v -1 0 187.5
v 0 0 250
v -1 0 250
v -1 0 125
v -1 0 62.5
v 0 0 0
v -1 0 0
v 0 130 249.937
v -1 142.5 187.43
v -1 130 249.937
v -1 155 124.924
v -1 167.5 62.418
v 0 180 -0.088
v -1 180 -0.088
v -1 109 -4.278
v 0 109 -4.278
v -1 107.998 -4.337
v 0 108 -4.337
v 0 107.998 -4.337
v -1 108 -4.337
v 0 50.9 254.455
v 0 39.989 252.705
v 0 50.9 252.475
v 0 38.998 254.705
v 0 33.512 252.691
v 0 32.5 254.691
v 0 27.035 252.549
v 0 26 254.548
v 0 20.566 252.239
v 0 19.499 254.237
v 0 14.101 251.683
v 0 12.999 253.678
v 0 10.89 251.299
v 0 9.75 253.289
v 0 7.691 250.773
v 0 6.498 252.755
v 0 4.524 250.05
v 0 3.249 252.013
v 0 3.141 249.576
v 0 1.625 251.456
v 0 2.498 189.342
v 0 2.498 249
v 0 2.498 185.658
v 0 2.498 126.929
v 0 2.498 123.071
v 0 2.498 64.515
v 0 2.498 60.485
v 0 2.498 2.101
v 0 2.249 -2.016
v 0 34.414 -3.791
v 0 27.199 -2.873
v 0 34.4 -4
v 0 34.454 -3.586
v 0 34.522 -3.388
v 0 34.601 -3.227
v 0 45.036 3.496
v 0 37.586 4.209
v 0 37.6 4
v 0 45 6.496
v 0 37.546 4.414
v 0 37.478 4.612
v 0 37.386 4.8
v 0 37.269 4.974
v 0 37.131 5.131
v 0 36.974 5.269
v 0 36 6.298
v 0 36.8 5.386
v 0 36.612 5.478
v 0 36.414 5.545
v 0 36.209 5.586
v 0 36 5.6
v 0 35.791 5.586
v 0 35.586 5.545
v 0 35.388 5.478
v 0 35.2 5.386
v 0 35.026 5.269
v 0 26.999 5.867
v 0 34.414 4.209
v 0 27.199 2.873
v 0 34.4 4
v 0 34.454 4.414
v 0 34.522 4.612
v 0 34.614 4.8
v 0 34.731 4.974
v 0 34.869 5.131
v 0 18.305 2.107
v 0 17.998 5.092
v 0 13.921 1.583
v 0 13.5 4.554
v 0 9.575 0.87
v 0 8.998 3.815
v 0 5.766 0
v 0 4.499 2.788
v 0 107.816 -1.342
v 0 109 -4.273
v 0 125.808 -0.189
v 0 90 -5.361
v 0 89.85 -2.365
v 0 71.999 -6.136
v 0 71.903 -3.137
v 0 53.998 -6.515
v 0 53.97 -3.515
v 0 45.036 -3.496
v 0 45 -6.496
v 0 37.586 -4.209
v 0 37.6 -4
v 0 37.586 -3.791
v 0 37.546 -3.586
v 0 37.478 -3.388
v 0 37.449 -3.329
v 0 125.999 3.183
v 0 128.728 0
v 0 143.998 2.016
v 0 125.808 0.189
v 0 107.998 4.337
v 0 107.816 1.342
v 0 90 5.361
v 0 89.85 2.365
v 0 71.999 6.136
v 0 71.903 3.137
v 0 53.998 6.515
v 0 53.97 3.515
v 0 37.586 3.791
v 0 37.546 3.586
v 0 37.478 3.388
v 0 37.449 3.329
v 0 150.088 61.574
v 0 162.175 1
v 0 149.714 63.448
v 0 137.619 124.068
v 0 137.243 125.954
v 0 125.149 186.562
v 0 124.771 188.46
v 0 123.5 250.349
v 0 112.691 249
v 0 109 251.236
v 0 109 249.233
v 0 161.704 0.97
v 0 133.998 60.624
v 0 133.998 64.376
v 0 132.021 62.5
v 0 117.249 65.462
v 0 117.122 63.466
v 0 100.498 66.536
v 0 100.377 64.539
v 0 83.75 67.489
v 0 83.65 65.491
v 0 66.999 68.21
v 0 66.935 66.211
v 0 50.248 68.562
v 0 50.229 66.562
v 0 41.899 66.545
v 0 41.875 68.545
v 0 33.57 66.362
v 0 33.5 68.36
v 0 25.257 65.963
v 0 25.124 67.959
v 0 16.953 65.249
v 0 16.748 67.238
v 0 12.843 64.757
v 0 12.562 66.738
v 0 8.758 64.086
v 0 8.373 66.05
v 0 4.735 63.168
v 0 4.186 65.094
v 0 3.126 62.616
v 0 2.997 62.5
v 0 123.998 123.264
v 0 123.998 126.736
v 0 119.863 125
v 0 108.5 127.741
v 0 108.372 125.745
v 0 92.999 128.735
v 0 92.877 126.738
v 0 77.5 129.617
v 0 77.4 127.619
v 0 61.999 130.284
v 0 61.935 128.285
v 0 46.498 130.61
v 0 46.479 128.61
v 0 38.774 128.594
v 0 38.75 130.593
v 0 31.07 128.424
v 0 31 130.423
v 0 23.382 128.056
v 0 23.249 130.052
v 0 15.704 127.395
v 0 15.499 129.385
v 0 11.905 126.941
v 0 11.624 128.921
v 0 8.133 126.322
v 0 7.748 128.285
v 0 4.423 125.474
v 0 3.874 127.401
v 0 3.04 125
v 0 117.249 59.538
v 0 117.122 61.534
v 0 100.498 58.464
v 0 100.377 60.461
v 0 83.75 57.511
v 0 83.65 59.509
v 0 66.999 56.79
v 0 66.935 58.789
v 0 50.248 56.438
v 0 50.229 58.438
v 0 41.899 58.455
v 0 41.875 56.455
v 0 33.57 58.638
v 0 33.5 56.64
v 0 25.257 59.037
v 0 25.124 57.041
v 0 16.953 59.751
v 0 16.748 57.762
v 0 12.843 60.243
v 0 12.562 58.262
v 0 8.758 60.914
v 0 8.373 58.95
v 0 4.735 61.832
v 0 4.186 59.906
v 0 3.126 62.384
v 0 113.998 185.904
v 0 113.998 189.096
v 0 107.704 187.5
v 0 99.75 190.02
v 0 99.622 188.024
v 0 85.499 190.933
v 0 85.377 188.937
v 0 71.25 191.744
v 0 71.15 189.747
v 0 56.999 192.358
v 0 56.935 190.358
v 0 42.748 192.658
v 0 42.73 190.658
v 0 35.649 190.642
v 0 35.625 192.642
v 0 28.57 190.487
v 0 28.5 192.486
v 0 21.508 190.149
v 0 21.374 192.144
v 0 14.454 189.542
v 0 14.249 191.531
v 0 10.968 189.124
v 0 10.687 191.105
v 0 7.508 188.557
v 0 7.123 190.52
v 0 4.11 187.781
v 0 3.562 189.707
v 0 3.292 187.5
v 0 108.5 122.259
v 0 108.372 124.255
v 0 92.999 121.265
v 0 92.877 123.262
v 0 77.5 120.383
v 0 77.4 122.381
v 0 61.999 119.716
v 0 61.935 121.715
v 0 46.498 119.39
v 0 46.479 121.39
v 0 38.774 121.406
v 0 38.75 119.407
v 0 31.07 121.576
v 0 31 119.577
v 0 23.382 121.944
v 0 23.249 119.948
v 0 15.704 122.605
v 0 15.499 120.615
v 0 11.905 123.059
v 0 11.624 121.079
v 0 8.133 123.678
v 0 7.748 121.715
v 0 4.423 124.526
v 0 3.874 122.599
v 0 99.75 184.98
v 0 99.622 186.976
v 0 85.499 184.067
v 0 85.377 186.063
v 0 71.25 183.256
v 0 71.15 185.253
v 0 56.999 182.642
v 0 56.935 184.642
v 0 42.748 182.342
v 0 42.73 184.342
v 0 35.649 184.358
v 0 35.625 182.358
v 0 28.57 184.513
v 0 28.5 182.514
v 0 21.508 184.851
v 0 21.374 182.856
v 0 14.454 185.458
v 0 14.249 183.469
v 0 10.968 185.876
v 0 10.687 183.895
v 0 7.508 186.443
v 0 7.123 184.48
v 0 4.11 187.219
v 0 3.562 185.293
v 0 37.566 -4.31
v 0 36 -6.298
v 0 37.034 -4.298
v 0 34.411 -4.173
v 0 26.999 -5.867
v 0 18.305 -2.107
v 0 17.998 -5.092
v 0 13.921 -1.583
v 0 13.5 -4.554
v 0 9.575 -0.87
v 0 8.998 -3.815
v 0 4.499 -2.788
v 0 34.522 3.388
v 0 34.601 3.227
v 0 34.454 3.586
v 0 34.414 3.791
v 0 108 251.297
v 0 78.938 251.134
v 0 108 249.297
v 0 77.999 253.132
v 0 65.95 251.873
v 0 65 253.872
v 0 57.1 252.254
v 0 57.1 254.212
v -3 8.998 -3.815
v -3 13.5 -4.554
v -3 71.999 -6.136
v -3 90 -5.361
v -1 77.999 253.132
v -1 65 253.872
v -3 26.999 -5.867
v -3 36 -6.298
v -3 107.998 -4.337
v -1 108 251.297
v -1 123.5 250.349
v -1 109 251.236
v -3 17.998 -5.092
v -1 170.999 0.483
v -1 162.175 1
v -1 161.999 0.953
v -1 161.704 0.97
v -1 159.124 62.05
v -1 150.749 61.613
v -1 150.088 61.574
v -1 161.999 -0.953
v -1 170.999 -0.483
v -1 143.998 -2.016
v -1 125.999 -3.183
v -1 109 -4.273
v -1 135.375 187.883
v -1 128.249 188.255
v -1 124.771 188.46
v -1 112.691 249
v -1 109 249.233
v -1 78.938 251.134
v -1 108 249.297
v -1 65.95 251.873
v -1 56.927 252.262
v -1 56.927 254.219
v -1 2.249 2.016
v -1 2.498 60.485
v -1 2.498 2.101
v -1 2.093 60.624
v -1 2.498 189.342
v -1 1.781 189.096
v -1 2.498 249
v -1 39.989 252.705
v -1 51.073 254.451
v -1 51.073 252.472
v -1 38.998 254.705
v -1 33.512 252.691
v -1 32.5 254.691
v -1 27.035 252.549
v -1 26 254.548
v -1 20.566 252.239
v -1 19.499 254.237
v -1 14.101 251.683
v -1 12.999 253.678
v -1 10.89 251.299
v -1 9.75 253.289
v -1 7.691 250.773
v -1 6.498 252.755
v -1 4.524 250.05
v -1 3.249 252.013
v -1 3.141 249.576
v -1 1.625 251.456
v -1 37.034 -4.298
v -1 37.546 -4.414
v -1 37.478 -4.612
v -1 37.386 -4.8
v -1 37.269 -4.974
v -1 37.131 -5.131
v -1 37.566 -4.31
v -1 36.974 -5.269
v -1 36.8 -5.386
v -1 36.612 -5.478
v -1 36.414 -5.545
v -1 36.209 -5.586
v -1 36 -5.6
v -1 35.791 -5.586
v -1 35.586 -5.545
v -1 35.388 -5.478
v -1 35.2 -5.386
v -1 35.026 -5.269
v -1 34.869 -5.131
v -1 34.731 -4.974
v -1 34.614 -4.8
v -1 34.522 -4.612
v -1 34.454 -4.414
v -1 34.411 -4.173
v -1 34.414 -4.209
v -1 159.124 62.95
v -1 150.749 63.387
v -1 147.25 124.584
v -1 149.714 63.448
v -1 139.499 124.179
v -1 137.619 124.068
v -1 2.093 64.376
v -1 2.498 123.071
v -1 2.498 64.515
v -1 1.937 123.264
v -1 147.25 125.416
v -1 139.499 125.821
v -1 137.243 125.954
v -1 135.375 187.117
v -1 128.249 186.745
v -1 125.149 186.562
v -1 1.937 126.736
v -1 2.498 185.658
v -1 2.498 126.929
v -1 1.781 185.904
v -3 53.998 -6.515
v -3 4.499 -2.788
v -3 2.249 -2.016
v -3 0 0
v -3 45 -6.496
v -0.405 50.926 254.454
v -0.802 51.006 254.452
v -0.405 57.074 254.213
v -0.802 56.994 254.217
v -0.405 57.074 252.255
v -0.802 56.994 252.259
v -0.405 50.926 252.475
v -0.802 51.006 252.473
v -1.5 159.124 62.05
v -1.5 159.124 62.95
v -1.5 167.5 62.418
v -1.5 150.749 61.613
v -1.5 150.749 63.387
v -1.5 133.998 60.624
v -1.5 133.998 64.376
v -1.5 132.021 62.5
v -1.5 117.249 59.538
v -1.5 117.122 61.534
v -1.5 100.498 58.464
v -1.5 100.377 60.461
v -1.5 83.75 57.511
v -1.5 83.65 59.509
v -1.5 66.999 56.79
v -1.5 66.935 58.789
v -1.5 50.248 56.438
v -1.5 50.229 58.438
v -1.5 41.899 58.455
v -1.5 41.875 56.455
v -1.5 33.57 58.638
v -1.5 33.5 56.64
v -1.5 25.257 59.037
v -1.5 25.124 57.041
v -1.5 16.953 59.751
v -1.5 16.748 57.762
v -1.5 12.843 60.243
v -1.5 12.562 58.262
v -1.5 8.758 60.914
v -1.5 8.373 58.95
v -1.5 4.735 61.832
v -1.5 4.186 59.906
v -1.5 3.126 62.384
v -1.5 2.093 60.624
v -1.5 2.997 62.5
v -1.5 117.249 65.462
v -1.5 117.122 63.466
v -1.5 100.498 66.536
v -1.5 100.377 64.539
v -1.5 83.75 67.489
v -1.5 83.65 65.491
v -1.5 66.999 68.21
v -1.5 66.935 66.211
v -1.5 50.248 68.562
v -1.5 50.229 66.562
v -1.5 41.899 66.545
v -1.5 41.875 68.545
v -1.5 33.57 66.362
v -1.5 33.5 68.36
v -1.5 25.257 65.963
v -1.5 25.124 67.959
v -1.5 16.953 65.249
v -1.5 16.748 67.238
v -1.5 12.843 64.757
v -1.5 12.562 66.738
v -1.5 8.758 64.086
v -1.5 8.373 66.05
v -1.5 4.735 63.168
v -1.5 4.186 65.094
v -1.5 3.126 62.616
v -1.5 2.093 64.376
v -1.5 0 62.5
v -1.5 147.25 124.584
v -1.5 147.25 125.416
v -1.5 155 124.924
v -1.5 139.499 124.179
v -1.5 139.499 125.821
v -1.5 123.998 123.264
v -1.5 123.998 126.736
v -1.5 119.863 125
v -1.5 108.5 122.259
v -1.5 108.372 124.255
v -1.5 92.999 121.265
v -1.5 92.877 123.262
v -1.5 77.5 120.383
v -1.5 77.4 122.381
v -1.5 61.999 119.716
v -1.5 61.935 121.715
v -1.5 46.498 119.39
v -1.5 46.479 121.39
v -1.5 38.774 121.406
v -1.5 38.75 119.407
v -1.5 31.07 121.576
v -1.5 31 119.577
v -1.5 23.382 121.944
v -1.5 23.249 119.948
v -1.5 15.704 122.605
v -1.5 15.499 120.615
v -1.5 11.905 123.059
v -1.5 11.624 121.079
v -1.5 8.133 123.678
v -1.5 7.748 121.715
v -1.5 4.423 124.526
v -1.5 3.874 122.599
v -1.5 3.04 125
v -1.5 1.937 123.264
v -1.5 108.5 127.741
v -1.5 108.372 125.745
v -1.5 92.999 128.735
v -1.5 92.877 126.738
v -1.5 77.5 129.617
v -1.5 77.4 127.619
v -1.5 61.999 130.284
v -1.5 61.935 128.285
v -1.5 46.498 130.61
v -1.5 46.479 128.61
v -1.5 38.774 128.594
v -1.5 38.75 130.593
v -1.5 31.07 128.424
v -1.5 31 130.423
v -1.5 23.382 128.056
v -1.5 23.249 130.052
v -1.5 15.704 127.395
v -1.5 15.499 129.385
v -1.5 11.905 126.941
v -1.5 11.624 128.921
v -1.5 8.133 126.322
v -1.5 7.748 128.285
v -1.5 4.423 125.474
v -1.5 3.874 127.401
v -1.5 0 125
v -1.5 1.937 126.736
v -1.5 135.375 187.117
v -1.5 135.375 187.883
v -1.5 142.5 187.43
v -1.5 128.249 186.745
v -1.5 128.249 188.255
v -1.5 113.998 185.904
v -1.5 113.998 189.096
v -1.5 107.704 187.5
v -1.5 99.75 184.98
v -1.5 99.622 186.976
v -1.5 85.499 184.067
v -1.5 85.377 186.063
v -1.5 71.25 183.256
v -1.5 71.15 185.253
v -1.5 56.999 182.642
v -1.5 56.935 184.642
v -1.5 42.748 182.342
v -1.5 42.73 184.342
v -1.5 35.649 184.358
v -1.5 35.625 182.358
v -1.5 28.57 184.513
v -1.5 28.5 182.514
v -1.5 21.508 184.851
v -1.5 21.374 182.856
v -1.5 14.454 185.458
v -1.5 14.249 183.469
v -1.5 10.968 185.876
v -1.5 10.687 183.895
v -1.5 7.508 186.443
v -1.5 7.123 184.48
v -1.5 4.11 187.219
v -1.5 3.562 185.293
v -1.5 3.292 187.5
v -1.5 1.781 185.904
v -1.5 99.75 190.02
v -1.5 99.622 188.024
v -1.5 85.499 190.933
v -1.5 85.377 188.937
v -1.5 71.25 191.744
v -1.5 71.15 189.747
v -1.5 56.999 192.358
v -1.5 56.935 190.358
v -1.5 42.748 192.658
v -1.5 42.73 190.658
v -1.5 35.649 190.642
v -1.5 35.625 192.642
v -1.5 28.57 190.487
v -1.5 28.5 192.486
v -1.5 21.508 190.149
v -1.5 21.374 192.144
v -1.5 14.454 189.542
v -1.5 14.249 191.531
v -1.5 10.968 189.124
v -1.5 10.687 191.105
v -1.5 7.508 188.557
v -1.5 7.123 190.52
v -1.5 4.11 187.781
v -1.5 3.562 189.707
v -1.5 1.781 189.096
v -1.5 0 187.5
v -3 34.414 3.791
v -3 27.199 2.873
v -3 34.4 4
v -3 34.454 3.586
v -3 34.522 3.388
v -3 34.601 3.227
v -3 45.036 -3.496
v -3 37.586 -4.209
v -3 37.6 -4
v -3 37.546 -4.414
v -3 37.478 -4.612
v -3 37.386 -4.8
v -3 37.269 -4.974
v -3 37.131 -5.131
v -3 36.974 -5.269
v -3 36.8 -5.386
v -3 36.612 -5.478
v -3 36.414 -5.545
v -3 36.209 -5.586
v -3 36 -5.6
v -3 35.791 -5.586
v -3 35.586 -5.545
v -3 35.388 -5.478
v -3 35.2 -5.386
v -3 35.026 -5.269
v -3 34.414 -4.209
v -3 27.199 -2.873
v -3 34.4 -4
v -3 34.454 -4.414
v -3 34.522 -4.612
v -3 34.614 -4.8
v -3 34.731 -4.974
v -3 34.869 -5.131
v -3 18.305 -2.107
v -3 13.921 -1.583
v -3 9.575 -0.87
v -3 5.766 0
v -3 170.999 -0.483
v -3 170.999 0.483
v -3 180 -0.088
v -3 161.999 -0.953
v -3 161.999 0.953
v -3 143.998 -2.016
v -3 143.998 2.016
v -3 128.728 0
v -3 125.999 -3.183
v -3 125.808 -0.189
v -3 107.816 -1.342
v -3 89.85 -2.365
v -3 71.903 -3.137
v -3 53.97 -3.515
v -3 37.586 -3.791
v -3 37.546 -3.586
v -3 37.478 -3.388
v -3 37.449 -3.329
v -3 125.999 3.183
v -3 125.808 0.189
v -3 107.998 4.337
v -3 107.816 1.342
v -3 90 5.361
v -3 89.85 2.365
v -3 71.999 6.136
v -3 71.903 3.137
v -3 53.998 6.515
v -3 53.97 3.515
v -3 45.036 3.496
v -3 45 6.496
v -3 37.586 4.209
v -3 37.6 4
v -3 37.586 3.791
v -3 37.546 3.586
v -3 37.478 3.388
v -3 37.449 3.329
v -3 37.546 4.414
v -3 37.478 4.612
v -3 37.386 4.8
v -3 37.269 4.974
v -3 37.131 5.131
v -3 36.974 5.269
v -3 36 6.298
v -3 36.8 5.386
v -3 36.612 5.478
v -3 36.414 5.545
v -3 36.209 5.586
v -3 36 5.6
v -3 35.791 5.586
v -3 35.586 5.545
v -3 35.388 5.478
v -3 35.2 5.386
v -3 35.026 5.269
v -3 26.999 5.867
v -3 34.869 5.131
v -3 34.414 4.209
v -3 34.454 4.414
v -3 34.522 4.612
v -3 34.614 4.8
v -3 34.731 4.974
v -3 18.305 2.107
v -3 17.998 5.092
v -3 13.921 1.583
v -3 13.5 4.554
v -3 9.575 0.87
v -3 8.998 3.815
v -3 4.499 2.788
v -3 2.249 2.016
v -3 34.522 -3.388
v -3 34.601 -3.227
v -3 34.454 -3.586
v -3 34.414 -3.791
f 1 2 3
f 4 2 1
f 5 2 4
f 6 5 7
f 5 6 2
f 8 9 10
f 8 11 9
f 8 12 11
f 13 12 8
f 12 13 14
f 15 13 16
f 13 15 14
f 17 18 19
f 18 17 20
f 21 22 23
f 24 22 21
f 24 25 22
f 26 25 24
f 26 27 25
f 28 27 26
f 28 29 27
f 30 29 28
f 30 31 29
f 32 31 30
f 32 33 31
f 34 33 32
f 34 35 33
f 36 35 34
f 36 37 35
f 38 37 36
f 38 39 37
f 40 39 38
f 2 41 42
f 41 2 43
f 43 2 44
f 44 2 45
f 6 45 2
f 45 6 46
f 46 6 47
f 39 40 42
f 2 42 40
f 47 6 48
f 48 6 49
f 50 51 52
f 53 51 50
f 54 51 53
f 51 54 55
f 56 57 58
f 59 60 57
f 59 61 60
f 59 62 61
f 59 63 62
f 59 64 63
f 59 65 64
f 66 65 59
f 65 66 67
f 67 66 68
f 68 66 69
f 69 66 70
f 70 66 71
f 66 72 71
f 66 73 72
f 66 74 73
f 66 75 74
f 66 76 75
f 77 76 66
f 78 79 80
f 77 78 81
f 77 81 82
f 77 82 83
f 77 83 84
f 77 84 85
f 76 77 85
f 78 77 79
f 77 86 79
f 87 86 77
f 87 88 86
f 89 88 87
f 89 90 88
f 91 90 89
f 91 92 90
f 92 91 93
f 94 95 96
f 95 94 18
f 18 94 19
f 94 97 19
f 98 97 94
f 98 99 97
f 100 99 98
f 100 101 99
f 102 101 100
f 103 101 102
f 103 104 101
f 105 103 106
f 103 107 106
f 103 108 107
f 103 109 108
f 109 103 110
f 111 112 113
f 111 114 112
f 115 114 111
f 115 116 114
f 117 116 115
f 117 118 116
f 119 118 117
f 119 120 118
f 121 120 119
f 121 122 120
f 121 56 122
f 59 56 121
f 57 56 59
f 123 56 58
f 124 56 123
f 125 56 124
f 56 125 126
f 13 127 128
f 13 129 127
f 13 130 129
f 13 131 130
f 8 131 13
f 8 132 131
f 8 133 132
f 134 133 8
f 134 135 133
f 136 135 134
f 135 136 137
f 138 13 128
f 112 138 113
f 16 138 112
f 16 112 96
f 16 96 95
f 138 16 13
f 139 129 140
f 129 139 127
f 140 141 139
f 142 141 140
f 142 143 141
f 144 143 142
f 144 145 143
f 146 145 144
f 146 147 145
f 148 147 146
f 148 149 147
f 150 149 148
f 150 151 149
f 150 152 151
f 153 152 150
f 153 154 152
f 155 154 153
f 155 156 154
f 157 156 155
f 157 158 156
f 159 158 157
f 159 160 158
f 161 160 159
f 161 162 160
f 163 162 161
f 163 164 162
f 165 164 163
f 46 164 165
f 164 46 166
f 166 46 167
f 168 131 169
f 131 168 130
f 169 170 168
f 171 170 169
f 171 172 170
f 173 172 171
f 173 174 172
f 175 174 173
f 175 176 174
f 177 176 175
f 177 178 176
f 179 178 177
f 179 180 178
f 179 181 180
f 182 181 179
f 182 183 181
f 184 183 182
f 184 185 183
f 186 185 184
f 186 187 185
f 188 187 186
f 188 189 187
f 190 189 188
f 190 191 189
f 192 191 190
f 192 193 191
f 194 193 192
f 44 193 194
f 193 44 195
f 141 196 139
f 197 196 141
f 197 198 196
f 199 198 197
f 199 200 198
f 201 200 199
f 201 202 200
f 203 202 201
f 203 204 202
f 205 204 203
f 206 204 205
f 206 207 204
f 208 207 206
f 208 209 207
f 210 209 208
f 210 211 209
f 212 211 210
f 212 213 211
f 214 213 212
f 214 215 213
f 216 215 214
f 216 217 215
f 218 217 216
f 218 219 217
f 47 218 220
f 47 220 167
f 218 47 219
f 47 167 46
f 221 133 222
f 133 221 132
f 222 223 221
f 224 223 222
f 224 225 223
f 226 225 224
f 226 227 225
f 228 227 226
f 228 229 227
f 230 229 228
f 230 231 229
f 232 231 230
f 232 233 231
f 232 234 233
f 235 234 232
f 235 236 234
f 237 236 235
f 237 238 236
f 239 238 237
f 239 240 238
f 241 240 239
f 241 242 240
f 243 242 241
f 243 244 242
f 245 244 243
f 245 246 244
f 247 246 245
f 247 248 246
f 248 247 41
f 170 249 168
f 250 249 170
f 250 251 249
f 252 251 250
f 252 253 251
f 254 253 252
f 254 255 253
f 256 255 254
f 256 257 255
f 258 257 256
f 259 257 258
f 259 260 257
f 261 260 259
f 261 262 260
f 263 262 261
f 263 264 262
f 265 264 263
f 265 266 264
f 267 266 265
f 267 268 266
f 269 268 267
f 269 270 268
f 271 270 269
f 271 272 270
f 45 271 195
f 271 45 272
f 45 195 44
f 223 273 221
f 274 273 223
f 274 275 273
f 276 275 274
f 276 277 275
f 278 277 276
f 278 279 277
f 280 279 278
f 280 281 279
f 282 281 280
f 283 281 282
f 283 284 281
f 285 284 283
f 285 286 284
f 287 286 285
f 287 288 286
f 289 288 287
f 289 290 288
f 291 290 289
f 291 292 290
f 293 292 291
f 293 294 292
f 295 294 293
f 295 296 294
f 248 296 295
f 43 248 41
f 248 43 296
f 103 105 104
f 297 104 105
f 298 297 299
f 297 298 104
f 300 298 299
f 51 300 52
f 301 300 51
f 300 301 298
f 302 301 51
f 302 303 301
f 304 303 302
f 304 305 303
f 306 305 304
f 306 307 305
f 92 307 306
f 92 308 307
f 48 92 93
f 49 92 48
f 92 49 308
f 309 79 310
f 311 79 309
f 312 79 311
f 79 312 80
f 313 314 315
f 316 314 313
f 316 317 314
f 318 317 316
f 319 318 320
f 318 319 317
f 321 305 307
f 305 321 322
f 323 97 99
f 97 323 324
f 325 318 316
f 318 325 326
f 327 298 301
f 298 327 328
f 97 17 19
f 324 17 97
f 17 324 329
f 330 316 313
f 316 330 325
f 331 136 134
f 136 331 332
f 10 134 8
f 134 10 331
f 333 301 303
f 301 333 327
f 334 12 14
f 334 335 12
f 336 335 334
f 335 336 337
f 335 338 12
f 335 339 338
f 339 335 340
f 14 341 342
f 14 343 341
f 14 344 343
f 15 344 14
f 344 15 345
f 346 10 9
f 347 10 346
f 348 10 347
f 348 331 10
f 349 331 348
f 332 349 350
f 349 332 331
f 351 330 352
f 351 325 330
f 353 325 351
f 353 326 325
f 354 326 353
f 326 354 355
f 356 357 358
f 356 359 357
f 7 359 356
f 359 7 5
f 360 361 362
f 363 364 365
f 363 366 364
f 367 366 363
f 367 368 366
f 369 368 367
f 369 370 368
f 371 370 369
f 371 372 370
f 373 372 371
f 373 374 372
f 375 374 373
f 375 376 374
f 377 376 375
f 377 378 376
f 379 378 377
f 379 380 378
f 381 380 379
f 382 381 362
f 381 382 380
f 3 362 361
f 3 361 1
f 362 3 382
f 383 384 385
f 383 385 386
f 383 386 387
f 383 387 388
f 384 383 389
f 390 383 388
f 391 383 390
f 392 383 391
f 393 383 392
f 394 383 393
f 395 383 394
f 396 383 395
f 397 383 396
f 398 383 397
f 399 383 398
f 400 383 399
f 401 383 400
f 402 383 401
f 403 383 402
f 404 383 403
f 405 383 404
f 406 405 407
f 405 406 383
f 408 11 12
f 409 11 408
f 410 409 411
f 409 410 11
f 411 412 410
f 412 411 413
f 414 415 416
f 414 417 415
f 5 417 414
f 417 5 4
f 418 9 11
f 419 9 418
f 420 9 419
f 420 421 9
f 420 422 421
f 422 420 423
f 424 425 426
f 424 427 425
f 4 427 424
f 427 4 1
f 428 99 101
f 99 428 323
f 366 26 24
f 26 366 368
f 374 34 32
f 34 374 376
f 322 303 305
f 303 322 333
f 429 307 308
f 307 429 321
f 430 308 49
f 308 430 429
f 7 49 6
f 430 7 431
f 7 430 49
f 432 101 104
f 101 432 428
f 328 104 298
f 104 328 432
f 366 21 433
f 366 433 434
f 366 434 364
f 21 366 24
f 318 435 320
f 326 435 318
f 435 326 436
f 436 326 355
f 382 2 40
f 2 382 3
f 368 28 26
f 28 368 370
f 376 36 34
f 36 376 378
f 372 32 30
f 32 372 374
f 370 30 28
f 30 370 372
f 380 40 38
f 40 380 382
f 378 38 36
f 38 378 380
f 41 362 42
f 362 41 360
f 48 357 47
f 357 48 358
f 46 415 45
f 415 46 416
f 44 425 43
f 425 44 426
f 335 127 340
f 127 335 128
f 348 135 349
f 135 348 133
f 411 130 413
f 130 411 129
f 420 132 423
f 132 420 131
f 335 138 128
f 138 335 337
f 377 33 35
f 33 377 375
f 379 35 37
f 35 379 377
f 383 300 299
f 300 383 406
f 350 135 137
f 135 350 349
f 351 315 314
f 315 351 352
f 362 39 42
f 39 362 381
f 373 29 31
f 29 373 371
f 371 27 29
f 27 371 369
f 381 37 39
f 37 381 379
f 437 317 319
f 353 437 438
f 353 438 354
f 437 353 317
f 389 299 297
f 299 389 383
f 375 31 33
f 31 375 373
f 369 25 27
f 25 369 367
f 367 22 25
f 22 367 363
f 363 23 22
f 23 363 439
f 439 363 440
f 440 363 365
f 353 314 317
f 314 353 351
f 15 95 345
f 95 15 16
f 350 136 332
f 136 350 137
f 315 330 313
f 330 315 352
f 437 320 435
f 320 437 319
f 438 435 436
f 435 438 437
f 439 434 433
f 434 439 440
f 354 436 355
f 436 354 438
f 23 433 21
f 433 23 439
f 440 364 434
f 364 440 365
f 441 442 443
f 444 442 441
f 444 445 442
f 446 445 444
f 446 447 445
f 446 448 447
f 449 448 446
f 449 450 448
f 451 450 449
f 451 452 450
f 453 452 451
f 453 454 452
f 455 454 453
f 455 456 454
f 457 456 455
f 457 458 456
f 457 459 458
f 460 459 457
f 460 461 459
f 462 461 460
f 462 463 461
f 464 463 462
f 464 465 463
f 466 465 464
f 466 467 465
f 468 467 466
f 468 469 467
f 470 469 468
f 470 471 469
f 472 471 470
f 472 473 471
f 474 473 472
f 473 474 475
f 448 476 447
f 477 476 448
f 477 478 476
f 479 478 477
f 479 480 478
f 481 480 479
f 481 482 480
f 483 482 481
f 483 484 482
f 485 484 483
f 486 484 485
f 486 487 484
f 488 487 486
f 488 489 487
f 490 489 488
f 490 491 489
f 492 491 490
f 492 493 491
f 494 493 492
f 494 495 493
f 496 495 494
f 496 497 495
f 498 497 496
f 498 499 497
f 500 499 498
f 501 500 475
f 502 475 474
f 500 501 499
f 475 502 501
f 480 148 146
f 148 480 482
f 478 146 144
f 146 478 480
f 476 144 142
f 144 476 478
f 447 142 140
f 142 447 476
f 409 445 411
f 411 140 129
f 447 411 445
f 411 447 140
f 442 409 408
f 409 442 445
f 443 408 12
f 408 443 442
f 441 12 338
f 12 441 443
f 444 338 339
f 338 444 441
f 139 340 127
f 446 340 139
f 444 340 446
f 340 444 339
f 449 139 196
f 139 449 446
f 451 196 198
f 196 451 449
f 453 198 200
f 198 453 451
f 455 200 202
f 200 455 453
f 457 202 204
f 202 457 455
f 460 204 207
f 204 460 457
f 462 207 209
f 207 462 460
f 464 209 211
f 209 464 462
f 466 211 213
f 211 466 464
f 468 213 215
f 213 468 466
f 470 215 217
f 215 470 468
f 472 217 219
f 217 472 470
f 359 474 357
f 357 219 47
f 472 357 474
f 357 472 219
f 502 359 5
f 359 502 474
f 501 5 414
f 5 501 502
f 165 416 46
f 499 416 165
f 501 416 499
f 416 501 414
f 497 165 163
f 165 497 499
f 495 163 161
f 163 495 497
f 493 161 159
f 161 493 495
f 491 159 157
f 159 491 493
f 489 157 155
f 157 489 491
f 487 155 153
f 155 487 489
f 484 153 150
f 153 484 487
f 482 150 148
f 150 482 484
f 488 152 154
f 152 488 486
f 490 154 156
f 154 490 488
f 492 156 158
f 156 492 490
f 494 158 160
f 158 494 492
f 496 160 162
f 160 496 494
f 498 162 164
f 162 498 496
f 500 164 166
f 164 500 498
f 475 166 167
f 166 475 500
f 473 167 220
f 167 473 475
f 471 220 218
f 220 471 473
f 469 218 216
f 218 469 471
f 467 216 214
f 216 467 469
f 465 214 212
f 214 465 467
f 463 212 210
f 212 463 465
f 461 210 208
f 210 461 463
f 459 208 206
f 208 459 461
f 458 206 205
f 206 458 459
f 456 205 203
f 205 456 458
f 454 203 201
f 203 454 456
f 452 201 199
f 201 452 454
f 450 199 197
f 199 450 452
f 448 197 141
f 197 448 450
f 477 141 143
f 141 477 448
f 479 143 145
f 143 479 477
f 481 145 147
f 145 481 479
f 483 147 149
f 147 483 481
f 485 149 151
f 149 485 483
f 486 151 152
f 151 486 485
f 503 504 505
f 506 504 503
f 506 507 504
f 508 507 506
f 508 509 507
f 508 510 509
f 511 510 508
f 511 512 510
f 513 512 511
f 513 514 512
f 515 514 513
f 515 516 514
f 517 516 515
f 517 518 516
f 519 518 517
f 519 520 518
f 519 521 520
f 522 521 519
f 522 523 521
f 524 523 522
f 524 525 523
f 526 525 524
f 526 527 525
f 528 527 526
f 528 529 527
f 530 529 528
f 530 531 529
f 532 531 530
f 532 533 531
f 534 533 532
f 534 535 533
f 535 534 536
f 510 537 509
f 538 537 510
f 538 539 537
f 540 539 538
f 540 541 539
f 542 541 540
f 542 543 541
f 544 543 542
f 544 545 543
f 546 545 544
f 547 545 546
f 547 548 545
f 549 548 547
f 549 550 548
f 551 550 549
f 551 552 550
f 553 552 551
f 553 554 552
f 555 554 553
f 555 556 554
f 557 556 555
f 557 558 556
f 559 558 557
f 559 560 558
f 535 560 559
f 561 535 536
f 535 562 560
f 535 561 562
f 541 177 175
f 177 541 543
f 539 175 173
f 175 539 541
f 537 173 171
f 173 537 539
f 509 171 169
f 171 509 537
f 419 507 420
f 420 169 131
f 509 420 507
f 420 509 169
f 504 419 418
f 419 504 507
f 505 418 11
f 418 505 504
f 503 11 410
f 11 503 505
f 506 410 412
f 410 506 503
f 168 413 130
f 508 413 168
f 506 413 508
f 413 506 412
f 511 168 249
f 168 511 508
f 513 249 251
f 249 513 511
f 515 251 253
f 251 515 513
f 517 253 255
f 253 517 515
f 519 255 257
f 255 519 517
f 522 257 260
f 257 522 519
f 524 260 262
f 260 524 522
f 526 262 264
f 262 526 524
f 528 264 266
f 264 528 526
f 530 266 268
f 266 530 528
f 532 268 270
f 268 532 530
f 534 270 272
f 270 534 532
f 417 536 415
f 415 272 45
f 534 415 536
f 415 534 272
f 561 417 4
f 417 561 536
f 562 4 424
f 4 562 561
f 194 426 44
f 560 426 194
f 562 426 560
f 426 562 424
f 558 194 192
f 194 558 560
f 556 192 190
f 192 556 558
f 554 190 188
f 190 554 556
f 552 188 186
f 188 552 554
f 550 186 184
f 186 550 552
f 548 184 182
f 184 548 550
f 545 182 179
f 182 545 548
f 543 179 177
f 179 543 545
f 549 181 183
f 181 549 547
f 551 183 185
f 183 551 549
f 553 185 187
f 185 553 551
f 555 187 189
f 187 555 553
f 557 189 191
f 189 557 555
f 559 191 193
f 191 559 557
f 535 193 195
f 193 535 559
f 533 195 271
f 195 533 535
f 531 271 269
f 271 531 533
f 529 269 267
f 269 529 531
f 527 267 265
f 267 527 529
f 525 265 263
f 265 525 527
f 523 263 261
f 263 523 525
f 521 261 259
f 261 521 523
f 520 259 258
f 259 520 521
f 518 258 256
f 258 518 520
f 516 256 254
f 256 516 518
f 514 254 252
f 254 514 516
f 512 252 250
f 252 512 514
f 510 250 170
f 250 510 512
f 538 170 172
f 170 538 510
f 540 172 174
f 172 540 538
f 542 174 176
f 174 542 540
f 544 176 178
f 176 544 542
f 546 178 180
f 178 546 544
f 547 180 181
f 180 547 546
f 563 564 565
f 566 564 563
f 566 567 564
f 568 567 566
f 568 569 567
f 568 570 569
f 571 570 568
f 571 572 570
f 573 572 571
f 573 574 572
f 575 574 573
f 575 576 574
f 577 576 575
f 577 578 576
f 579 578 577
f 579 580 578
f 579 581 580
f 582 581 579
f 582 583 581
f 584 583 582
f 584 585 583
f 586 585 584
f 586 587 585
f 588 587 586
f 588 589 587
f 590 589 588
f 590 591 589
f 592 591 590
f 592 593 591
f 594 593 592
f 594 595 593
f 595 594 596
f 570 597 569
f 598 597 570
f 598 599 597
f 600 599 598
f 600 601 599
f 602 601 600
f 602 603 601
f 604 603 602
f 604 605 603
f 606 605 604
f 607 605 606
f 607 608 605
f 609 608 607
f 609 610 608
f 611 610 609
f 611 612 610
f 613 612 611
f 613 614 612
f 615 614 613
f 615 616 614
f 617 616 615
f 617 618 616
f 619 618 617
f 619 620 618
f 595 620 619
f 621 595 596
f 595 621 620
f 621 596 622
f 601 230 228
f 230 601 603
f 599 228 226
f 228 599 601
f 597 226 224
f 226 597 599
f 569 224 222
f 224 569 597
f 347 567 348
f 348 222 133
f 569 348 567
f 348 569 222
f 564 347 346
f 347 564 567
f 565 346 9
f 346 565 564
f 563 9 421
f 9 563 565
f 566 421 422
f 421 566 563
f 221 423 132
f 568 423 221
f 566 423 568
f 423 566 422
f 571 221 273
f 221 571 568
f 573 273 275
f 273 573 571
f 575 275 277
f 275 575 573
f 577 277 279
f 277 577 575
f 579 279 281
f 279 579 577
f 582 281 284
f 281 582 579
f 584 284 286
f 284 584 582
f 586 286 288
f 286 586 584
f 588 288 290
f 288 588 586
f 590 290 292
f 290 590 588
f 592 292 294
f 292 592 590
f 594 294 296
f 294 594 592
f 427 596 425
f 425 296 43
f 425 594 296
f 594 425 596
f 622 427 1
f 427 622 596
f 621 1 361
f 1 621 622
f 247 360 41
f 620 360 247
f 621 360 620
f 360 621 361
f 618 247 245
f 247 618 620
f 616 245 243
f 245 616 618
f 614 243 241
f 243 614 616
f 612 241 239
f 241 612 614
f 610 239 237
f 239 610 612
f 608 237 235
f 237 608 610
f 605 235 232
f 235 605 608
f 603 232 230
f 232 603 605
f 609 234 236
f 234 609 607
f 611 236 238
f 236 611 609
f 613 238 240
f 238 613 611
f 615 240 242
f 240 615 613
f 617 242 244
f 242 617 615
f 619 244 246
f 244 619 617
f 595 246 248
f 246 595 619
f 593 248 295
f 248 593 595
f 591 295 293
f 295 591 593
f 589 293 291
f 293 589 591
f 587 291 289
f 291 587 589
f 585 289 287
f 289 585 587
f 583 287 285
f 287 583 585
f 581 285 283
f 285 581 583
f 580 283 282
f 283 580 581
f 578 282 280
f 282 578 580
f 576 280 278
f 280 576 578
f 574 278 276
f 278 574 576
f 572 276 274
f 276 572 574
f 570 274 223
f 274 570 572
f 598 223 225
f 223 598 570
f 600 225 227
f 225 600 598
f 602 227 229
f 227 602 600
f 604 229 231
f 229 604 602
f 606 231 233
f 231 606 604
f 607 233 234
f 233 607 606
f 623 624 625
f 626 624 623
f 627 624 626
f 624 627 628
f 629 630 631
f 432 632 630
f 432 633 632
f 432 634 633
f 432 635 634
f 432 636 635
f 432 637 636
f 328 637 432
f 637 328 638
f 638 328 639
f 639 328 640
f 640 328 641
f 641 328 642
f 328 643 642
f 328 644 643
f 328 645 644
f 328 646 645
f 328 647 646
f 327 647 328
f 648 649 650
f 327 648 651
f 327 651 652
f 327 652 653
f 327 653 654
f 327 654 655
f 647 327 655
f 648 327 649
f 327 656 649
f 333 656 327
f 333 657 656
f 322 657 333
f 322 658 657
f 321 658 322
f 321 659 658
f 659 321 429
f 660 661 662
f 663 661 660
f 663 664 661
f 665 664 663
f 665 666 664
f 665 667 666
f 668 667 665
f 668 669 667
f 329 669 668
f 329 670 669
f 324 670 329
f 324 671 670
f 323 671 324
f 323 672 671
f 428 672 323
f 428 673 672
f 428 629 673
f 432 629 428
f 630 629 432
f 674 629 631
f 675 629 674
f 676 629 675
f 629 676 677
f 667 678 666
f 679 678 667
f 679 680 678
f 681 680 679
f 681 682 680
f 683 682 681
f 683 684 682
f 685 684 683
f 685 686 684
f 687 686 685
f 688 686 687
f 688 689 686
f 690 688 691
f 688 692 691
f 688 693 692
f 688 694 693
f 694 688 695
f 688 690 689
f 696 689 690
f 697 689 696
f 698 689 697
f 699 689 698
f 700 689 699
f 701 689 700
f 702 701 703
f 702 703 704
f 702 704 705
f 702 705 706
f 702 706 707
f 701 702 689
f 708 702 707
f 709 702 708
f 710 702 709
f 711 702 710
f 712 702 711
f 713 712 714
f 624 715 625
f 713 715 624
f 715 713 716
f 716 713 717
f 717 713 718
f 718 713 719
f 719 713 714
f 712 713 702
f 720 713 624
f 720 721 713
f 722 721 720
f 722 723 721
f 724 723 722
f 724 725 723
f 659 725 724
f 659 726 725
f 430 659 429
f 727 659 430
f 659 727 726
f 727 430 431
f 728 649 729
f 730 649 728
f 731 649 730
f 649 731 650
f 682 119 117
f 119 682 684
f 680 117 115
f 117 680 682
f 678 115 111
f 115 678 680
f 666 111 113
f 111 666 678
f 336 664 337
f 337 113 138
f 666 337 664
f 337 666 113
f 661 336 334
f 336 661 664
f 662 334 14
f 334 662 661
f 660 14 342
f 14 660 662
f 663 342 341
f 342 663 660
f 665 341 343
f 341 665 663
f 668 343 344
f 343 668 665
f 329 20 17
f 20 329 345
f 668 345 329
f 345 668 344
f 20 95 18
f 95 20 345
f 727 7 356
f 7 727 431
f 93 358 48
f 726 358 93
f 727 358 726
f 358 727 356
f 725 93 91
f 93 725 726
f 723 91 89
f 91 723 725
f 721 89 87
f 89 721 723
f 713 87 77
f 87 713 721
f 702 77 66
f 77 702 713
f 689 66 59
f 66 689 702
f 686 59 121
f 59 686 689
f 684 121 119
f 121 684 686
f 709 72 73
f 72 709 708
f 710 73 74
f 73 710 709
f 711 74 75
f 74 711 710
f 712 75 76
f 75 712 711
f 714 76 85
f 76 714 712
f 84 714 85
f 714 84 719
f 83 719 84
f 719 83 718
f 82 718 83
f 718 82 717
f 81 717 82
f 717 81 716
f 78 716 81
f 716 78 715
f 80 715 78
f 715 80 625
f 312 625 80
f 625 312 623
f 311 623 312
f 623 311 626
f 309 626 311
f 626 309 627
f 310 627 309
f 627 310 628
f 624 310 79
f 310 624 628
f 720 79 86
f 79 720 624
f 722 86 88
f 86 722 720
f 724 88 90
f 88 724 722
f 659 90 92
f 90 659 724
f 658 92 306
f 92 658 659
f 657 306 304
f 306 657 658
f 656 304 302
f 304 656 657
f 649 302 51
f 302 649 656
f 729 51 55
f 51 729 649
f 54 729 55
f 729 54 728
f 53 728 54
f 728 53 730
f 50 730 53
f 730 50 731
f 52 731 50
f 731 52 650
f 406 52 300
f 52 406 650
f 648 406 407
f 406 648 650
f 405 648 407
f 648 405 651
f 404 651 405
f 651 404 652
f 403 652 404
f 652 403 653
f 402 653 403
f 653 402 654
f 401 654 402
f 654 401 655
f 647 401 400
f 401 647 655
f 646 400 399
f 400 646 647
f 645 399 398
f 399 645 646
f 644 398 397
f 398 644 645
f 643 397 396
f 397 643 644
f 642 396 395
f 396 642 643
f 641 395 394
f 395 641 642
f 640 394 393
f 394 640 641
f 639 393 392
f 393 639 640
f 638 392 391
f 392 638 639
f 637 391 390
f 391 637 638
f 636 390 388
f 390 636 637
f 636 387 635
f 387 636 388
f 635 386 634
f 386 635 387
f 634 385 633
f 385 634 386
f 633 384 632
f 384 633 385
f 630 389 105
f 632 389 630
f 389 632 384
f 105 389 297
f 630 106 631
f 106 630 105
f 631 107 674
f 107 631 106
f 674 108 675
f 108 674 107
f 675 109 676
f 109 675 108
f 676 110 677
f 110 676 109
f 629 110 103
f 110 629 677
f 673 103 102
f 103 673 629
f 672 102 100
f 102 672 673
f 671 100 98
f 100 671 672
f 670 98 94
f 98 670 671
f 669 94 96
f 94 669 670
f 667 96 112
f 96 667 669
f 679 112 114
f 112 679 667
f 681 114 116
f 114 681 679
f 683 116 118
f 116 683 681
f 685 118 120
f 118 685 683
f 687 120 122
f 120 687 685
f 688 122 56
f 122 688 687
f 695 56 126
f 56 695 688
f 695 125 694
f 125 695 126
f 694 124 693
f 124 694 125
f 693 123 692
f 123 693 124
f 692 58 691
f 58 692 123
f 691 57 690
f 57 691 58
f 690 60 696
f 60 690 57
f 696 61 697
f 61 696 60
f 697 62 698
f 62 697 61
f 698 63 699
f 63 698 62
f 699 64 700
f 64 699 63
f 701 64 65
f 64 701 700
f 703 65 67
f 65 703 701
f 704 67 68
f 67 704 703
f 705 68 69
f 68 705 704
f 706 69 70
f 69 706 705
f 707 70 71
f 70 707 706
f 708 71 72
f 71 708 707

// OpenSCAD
// file: ../../lib/profiles.scad
// Knihovna leteckych profilu pro RC letadlo
// Vsechny rozmery v milimetrech

// Clark-Y profil (zjednoduseny) - pro kridlo
// Vraci 2D polygon profilu normalizovany na hloubku 1
function clark_y_upper() = [
    [1.000, 0.0013],
    [0.950, 0.0114],
    [0.900, 0.0208],
    [0.800, 0.0375],
    [0.700, 0.0518],
    [0.600, 0.0636],
    [0.500, 0.0724],
    [0.400, 0.0780],
    [0.300, 0.0788],
    [0.250, 0.0767],
    [0.200, 0.0726],
    [0.150, 0.0661],
    [0.100, 0.0563],
    [0.075, 0.0496],
    [0.050, 0.0413],
    [0.025, 0.0299],
    [0.0125,0.0215],
    [0.000, 0.0000]
];

function clark_y_lower() = [
    [0.000, 0.0000],
    [0.0125,-0.0095],
    [0.025, -0.0116],
    [0.050, -0.0126],
    [0.075, -0.0119],
    [0.100, -0.0104],
    [0.150, -0.0069],
    [0.200, -0.0040],
    [0.250, -0.0018],
    [0.300, -0.0005],
    [0.400, 0.0003],
    [0.500, 0.0000],
    [0.600, -0.0003],
    [0.700, -0.0003],
    [0.800, 0.0000],
    [0.900, 0.0005],
    [0.950, 0.0007],
    [1.000, 0.0013]
];

function clark_y_points() = concat(clark_y_upper(), clark_y_lower());

module clark_y_profile(chord) {
    pts = concat(clark_y_upper(), clark_y_lower());
    scale([chord, chord, 1])
        polygon([for (p = pts) [p[0], p[1]]]);
}

// NACA 0009 symetricky profil - pro ocasni plochy
function naca0009_half() = [
    [0.000, 0.0000],
    [0.0125, 0.0112],
    [0.025, 0.0155],
    [0.050, 0.0212],
    [0.075, 0.0253],
    [0.100, 0.0283],
    [0.150, 0.0326],
    [0.200, 0.0350],
    [0.250, 0.0361],
    [0.300, 0.0362],
    [0.400, 0.0341],
    [0.500, 0.0298],
    [0.600, 0.0241],
    [0.700, 0.0177],
    [0.800, 0.0112],
    [0.900, 0.0053],
    [0.950, 0.0027],
    [1.000, 0.0005]
];

module naca0009_profile(chord) {
    upper = naca0009_half();
    lower = [for (i = [len(upper)-1:-1:0]) [upper[i][0], -upper[i][1]]];
    pts = concat(upper, [for (i = [1:len(lower)-1]) lower[i]]);
    scale([chord, chord, 1])
        polygon([for (p = pts) [p[0], p[1]]]);
}

// Ovalny prurezu trupu
module oval_profile(width, height) {
    scale([width/2, height/2])
        circle(r=1, $fn=64);
}

// Zaobleny obdelnik
module rounded_rect(w, h, r) {
    offset(r=r)
        square([w - 2*r, h - 2*r], center=true);
}
// main file
// Svislá ocasní plocha (SOP)
// NACA 0009 profil, výška 250mm, hloubka 180mm
// Směrové kormidlo = zadních 40%
// Material: PLA-LW, 10% výplň, 2 perimetry

use <../../lib/profiles.scad>;

$fn = 48;

vyska = 250;
hloubka_koren = 180;
hloubka_konec = 130;
tl = 1.0;
nosnik_prumer = 6.2;
pozice_nosnik = 0.30;
kormidlo_pomer = 0.40;

module sop() {
    difference() {
        // Plný tvar - svisle orientovány
        hull() {
            rotate([0, -90, 0])
                rotate([0, 0, 90])
                    linear_extrude(1)
                        naca0009_profile(hloubka_koren);
            translate([0, 0, vyska])
                rotate([0, -90, 0])
                    rotate([0, 0, 90])
                        linear_extrude(1)
                            naca0009_profile(hloubka_konec);
        }

        // Dutina
        hull() {
            translate([0, tl, tl])
                rotate([0, -90, 0])
                    rotate([0, 0, 90])
                        linear_extrude(1)
                            offset(delta=-tl)
                                naca0009_profile(hloubka_koren);
            translate([0, tl, vyska - tl])
                rotate([0, -90, 0])
                    rotate([0, 0, 90])
                        linear_extrude(1)
                            offset(delta=-tl)
                                naca0009_profile(hloubka_konec);
        }

        // Řez pro směrové kormidlo
        pevna = hloubka_koren * (1 - kormidlo_pomer);
        translate([- hloubka_koren * 0.06, pevna, -5])
            cube([hloubka_koren * 0.12, 1, vyska + 10]);

        // Otvory pro panty
        for (i = [0:2]) {
            translate([0, pevna - 2, 40 + i * 80])
                rotate([-90, 0, 0])
                    cylinder(d=2, h=6);
        }

        // Otvor pro nosník
        translate([0, hloubka_koren * pozice_nosnik, -10])
            cylinder(d=nosnik_prumer, h=vyska + 20);
    }

    // Žebra
    for (i = [1:3]) {
        frac = i / 4;
        h = hloubka_koren + (hloubka_konec - hloubka_koren) * frac;
        translate([0, 0, frac * vyska])
            rotate([0, -90, 0])
                rotate([0, 0, 90])
                    linear_extrude(1.5)
                        difference() {
                            naca0009_profile(h);
                            offset(delta=-2)
                                naca0009_profile(h);
                            translate([h * pozice_nosnik, 0])
                                circle(d=nosnik_prumer);
                        }
    }

    // Kořenové žebro (montáž k trupu)
    rotate([0, -90, 0])
        rotate([0, 0, 90])
            linear_extrude(3)
                difference() {
                    naca0009_profile(hloubka_koren);
                    offset(delta=-3)
                        naca0009_profile(hloubka_koren);
                    translate([hloubka_koren * pozice_nosnik, 0])
                        circle(d=nosnik_prumer);
                    // Montážní šrouby
                    for (x = [-1, 1])
                        translate([hloubka_koren * 0.2, x * 4])
                            circle(d=3.2);
                }
}

sop();
